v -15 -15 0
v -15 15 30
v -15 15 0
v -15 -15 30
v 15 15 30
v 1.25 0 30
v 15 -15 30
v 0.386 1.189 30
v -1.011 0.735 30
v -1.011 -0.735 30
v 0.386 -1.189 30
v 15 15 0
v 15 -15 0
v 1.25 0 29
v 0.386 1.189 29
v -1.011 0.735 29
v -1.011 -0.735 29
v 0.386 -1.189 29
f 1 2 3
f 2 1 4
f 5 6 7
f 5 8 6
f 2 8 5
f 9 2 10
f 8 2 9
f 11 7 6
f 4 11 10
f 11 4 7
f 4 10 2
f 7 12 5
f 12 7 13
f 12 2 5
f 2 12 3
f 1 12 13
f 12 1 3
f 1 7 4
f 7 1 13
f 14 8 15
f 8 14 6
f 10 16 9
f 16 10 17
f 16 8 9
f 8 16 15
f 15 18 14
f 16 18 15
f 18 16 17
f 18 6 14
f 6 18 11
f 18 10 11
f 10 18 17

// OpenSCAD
cube_size = 30; // [10:Small,20:Medium,30:Large]

hole_diameter = 2.5; 
hole_radius = hole_diameter/2;

// How deep should the center hole be?
hole_depth = 1; // [0,1,5,50]

show_wheels = "no"; // [yes,no]

// How thick should the side wheels be?
wheel_thickness = 1; // [1:40]

// ignore this variable!
// foo=1;

// don't turn functions into params!
function BEZ03(u) = pow((1-u), 3);

// ignore variable values
bing = 3+4;
baz = 3 / hole_depth;

difference() {
  union() {
    translate([0, 0, cube_size/2]) cube([cube_size,cube_size,cube_size], center=true);
    if (show_wheels == "yes") {
      translate([0, 0, cube_size/2]) rotate([0, 90, 0]) {
        cylinder(r=cube_size/2, h=cube_size+(wheel_thickness*2), center=true);
      }
    }
  }
  translate([0, 0, cube_size-hole_depth]) cylinder(r=hole_radius, h=hole_depth);
}
        
